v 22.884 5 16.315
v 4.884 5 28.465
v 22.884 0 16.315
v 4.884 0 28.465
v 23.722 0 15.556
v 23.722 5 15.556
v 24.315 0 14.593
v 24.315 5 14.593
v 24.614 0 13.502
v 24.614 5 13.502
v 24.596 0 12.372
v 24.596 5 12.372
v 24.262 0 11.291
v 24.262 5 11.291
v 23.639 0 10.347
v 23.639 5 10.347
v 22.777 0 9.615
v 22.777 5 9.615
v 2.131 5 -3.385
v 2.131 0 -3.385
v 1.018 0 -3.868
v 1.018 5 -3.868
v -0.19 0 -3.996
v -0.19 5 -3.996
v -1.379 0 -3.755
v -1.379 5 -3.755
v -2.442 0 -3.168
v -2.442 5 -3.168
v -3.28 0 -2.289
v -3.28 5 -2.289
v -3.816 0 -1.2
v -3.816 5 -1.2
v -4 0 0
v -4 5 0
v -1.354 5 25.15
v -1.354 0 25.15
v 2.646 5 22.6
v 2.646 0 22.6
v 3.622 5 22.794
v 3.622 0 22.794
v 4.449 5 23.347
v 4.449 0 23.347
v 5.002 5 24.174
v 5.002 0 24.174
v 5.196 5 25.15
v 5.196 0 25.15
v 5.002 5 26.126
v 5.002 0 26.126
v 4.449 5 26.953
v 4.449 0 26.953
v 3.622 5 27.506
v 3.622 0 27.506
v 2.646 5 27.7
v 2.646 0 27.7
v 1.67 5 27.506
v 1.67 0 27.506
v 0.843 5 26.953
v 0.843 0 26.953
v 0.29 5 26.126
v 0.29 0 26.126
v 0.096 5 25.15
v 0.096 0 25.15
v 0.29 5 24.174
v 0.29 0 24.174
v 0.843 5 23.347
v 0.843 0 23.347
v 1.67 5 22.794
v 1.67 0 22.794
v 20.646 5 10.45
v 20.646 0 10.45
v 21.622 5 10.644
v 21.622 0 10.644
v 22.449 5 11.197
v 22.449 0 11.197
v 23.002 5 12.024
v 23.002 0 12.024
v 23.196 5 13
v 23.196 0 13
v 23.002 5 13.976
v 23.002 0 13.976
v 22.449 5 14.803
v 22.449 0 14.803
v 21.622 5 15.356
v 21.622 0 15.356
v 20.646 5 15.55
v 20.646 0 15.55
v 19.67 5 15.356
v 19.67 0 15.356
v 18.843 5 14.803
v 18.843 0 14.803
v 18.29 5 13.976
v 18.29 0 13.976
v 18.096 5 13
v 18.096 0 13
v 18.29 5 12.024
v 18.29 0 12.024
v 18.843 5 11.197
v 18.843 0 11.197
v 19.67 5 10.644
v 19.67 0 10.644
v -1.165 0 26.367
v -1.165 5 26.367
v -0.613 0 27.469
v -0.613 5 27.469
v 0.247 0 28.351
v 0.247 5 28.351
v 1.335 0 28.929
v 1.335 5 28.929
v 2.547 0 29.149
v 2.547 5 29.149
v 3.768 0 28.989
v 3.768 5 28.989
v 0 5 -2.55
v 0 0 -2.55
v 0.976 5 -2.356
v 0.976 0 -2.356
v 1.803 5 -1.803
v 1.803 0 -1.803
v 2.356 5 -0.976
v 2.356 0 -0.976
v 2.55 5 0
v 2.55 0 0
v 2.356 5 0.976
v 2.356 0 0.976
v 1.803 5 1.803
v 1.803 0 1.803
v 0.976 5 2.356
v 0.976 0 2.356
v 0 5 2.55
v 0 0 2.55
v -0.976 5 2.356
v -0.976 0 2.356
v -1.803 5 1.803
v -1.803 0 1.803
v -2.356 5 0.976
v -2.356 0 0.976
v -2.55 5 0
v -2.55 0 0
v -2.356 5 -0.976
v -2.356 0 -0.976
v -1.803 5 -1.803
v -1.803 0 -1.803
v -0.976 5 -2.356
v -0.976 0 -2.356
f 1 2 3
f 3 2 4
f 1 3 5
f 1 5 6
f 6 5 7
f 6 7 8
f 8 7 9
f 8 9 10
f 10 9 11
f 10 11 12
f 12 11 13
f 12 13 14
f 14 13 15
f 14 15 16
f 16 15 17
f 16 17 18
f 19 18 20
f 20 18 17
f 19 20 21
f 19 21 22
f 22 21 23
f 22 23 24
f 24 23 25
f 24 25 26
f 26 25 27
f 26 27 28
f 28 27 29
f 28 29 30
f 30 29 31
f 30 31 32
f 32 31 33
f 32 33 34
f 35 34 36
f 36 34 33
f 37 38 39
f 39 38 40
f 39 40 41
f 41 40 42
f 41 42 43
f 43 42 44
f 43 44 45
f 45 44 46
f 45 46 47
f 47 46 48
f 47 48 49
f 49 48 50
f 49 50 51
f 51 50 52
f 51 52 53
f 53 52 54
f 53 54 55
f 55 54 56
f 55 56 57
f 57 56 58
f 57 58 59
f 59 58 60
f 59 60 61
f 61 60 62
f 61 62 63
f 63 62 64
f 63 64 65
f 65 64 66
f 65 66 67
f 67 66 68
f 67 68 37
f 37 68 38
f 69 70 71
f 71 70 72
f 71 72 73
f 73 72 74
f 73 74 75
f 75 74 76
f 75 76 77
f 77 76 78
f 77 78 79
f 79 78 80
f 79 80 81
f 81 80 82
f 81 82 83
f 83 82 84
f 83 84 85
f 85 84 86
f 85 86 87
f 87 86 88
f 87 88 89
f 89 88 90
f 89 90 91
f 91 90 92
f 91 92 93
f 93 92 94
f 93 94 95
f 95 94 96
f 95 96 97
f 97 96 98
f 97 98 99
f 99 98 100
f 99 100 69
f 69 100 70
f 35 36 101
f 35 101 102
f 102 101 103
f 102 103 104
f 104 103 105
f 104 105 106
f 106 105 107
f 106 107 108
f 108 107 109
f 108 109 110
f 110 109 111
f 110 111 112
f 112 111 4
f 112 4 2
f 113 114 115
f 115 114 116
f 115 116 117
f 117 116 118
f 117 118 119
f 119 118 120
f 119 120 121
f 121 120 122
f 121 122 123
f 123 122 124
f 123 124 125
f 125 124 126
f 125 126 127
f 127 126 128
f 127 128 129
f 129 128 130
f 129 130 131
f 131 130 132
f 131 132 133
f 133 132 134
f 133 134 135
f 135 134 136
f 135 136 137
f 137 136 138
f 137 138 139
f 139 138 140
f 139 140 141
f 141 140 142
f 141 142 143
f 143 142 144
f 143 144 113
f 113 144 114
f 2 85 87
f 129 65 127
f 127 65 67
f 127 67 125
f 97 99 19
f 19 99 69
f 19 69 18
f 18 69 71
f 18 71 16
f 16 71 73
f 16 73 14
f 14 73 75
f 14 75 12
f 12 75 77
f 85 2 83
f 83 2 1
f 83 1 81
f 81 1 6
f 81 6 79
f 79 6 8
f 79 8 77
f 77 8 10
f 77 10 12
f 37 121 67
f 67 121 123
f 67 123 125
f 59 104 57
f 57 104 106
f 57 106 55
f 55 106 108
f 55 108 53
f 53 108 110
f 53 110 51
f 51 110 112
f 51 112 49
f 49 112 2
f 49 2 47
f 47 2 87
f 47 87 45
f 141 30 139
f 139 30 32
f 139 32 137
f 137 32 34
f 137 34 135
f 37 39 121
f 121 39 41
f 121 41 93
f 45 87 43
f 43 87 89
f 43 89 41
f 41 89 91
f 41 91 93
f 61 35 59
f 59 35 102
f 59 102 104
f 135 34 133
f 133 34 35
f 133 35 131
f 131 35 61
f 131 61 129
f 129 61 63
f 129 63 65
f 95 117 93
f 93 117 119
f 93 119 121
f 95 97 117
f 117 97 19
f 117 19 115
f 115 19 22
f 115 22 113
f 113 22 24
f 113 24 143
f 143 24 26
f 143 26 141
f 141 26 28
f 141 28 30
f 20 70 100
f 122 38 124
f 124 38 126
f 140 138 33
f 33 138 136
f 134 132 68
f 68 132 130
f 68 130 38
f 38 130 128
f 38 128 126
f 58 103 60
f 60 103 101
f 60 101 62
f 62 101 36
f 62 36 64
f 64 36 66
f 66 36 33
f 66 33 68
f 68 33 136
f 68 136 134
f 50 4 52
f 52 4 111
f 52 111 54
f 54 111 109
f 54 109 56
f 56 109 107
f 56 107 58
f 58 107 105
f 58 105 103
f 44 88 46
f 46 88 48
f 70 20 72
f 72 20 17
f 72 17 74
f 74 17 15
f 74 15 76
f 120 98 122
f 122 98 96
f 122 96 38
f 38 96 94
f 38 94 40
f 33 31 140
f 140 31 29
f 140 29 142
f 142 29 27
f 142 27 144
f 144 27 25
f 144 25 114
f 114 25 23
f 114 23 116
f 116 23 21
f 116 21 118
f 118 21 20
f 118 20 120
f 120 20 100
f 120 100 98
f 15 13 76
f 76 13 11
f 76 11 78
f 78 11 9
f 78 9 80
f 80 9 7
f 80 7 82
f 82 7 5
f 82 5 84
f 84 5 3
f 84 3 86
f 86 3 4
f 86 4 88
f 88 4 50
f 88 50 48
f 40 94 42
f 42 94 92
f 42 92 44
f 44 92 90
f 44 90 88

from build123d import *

# Parameters (mm, degrees)
SKETCH1_R           = 2.5
BOSS_EXTRUDE1_DEPTH = 5


with BuildPart() as part:
    # Sketch1 → Boss-Extrude1 (new body)
    with BuildSketch(Plane(origin=(0, 0, 0), x_dir=(1, 0, 0), z_dir=(0, 1, 0))):
        with BuildLine():
            ThreePointArc((-1.35433299, -25.15), (0.768377165, -28.682107422), (4.88355843, -28.465394696))
            Line((4.88355843, -28.465394696), (22.88355843, -16.315394696))
            ThreePointArc((22.88355843, -16.315394696), (24.645161473, -12.936407261), (22.777022974, -9.615133422))
            Line((22.777022974, -9.615133422), (2.131355964, 3.384866578))
            ThreePointArc((2.131355964, 3.384866578), (-1.933206681, 3.501815519), (-4, 0))
            Line((-4, 0), (-1.35433299, -25.15))
        make_face()
        with Locations(Location((2.64566701, -25.15, 0), (0, 0, 270))):
            Circle(SKETCH1_R, mode=Mode.SUBTRACT)
        with Locations(Location((20.64566701, -13, 0), (0, 0, 270))):
            Circle(SKETCH1_R, mode=Mode.SUBTRACT)
        with Locations(Location((0, 0, 0), (0, 0, 270))):
            Circle(SKETCH1_R, mode=Mode.SUBTRACT)
    extrude(amount=BOSS_EXTRUDE1_DEPTH)


solid = part.part
